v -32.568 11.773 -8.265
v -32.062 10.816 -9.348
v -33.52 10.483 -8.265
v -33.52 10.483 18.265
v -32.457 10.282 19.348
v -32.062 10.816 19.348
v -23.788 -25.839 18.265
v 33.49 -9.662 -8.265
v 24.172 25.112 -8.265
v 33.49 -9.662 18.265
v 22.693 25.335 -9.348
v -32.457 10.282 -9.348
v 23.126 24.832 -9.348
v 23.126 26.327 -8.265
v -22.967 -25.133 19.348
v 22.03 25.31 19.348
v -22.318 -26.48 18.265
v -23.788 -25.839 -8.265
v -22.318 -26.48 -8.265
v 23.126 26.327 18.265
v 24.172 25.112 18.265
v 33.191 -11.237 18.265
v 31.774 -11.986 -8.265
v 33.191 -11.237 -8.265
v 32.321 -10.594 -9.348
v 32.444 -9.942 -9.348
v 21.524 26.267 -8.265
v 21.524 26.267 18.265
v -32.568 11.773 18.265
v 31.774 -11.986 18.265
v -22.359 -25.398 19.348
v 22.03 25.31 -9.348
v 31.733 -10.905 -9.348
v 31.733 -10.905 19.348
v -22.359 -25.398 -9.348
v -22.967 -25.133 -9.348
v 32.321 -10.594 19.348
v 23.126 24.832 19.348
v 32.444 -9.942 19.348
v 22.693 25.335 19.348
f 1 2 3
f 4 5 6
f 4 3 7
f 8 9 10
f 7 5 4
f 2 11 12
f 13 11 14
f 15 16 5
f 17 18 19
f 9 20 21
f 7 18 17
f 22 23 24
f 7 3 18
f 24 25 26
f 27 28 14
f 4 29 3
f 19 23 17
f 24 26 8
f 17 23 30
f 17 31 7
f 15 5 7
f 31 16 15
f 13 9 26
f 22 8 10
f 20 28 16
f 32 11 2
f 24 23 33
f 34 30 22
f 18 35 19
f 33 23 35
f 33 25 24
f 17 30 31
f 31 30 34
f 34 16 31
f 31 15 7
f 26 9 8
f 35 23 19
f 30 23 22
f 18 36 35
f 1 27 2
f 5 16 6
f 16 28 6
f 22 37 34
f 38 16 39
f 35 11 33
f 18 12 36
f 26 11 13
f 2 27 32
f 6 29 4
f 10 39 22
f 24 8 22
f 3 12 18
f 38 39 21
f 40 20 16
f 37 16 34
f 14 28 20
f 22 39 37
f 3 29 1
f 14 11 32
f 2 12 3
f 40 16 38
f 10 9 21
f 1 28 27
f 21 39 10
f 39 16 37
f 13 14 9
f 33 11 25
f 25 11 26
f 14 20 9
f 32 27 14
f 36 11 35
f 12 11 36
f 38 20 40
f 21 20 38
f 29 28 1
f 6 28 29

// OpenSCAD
// Define dimensions for the rectangular block
block_length = 60;  // Length of the block
block_width = 40;   // Width of the block
block_height = 25;  // Updated height (thickness) of the block to match the original model

// Define corner radius for rounded edges
corner_radius = 2;  // Slightly round the edges to match the original model

// Create the rectangular block with rounded edges
module rectangular_block() {
    hull() {
        translate([-block_length/2 + corner_radius, -block_width/2 + corner_radius, -block_height/2]) 
            sphere(corner_radius);
        translate([block_length/2 - corner_radius, -block_width/2 + corner_radius, -block_height/2]) 
            sphere(corner_radius);
        translate([-block_length/2 + corner_radius, block_width/2 - corner_radius, -block_height/2]) 
            sphere(corner_radius);
        translate([block_length/2 - corner_radius, block_width/2 - corner_radius, -block_height/2]) 
            sphere(corner_radius);
        translate([-block_length/2 + corner_radius, -block_width/2 + corner_radius, block_height/2]) 
            sphere(corner_radius);
        translate([block_length/2 - corner_radius, -block_width/2 + corner_radius, block_height/2]) 
            sphere(corner_radius);
        translate([-block_length/2 + corner_radius, block_width/2 - corner_radius, block_height/2]) 
            sphere(corner_radius);
        translate([block_length/2 - corner_radius, block_width/2 - corner_radius, block_height/2]) 
            sphere(corner_radius);
    }
}

// Adjust the orientation and position to ensure alignment and symmetry
rotate([0, 0, 15]) {  // Adjusted rotation to match the original model’s angle
    translate([0, 0, 5]) {  // Adjusted position to match the original model’s placement
        rectangular_block();
    }
}
